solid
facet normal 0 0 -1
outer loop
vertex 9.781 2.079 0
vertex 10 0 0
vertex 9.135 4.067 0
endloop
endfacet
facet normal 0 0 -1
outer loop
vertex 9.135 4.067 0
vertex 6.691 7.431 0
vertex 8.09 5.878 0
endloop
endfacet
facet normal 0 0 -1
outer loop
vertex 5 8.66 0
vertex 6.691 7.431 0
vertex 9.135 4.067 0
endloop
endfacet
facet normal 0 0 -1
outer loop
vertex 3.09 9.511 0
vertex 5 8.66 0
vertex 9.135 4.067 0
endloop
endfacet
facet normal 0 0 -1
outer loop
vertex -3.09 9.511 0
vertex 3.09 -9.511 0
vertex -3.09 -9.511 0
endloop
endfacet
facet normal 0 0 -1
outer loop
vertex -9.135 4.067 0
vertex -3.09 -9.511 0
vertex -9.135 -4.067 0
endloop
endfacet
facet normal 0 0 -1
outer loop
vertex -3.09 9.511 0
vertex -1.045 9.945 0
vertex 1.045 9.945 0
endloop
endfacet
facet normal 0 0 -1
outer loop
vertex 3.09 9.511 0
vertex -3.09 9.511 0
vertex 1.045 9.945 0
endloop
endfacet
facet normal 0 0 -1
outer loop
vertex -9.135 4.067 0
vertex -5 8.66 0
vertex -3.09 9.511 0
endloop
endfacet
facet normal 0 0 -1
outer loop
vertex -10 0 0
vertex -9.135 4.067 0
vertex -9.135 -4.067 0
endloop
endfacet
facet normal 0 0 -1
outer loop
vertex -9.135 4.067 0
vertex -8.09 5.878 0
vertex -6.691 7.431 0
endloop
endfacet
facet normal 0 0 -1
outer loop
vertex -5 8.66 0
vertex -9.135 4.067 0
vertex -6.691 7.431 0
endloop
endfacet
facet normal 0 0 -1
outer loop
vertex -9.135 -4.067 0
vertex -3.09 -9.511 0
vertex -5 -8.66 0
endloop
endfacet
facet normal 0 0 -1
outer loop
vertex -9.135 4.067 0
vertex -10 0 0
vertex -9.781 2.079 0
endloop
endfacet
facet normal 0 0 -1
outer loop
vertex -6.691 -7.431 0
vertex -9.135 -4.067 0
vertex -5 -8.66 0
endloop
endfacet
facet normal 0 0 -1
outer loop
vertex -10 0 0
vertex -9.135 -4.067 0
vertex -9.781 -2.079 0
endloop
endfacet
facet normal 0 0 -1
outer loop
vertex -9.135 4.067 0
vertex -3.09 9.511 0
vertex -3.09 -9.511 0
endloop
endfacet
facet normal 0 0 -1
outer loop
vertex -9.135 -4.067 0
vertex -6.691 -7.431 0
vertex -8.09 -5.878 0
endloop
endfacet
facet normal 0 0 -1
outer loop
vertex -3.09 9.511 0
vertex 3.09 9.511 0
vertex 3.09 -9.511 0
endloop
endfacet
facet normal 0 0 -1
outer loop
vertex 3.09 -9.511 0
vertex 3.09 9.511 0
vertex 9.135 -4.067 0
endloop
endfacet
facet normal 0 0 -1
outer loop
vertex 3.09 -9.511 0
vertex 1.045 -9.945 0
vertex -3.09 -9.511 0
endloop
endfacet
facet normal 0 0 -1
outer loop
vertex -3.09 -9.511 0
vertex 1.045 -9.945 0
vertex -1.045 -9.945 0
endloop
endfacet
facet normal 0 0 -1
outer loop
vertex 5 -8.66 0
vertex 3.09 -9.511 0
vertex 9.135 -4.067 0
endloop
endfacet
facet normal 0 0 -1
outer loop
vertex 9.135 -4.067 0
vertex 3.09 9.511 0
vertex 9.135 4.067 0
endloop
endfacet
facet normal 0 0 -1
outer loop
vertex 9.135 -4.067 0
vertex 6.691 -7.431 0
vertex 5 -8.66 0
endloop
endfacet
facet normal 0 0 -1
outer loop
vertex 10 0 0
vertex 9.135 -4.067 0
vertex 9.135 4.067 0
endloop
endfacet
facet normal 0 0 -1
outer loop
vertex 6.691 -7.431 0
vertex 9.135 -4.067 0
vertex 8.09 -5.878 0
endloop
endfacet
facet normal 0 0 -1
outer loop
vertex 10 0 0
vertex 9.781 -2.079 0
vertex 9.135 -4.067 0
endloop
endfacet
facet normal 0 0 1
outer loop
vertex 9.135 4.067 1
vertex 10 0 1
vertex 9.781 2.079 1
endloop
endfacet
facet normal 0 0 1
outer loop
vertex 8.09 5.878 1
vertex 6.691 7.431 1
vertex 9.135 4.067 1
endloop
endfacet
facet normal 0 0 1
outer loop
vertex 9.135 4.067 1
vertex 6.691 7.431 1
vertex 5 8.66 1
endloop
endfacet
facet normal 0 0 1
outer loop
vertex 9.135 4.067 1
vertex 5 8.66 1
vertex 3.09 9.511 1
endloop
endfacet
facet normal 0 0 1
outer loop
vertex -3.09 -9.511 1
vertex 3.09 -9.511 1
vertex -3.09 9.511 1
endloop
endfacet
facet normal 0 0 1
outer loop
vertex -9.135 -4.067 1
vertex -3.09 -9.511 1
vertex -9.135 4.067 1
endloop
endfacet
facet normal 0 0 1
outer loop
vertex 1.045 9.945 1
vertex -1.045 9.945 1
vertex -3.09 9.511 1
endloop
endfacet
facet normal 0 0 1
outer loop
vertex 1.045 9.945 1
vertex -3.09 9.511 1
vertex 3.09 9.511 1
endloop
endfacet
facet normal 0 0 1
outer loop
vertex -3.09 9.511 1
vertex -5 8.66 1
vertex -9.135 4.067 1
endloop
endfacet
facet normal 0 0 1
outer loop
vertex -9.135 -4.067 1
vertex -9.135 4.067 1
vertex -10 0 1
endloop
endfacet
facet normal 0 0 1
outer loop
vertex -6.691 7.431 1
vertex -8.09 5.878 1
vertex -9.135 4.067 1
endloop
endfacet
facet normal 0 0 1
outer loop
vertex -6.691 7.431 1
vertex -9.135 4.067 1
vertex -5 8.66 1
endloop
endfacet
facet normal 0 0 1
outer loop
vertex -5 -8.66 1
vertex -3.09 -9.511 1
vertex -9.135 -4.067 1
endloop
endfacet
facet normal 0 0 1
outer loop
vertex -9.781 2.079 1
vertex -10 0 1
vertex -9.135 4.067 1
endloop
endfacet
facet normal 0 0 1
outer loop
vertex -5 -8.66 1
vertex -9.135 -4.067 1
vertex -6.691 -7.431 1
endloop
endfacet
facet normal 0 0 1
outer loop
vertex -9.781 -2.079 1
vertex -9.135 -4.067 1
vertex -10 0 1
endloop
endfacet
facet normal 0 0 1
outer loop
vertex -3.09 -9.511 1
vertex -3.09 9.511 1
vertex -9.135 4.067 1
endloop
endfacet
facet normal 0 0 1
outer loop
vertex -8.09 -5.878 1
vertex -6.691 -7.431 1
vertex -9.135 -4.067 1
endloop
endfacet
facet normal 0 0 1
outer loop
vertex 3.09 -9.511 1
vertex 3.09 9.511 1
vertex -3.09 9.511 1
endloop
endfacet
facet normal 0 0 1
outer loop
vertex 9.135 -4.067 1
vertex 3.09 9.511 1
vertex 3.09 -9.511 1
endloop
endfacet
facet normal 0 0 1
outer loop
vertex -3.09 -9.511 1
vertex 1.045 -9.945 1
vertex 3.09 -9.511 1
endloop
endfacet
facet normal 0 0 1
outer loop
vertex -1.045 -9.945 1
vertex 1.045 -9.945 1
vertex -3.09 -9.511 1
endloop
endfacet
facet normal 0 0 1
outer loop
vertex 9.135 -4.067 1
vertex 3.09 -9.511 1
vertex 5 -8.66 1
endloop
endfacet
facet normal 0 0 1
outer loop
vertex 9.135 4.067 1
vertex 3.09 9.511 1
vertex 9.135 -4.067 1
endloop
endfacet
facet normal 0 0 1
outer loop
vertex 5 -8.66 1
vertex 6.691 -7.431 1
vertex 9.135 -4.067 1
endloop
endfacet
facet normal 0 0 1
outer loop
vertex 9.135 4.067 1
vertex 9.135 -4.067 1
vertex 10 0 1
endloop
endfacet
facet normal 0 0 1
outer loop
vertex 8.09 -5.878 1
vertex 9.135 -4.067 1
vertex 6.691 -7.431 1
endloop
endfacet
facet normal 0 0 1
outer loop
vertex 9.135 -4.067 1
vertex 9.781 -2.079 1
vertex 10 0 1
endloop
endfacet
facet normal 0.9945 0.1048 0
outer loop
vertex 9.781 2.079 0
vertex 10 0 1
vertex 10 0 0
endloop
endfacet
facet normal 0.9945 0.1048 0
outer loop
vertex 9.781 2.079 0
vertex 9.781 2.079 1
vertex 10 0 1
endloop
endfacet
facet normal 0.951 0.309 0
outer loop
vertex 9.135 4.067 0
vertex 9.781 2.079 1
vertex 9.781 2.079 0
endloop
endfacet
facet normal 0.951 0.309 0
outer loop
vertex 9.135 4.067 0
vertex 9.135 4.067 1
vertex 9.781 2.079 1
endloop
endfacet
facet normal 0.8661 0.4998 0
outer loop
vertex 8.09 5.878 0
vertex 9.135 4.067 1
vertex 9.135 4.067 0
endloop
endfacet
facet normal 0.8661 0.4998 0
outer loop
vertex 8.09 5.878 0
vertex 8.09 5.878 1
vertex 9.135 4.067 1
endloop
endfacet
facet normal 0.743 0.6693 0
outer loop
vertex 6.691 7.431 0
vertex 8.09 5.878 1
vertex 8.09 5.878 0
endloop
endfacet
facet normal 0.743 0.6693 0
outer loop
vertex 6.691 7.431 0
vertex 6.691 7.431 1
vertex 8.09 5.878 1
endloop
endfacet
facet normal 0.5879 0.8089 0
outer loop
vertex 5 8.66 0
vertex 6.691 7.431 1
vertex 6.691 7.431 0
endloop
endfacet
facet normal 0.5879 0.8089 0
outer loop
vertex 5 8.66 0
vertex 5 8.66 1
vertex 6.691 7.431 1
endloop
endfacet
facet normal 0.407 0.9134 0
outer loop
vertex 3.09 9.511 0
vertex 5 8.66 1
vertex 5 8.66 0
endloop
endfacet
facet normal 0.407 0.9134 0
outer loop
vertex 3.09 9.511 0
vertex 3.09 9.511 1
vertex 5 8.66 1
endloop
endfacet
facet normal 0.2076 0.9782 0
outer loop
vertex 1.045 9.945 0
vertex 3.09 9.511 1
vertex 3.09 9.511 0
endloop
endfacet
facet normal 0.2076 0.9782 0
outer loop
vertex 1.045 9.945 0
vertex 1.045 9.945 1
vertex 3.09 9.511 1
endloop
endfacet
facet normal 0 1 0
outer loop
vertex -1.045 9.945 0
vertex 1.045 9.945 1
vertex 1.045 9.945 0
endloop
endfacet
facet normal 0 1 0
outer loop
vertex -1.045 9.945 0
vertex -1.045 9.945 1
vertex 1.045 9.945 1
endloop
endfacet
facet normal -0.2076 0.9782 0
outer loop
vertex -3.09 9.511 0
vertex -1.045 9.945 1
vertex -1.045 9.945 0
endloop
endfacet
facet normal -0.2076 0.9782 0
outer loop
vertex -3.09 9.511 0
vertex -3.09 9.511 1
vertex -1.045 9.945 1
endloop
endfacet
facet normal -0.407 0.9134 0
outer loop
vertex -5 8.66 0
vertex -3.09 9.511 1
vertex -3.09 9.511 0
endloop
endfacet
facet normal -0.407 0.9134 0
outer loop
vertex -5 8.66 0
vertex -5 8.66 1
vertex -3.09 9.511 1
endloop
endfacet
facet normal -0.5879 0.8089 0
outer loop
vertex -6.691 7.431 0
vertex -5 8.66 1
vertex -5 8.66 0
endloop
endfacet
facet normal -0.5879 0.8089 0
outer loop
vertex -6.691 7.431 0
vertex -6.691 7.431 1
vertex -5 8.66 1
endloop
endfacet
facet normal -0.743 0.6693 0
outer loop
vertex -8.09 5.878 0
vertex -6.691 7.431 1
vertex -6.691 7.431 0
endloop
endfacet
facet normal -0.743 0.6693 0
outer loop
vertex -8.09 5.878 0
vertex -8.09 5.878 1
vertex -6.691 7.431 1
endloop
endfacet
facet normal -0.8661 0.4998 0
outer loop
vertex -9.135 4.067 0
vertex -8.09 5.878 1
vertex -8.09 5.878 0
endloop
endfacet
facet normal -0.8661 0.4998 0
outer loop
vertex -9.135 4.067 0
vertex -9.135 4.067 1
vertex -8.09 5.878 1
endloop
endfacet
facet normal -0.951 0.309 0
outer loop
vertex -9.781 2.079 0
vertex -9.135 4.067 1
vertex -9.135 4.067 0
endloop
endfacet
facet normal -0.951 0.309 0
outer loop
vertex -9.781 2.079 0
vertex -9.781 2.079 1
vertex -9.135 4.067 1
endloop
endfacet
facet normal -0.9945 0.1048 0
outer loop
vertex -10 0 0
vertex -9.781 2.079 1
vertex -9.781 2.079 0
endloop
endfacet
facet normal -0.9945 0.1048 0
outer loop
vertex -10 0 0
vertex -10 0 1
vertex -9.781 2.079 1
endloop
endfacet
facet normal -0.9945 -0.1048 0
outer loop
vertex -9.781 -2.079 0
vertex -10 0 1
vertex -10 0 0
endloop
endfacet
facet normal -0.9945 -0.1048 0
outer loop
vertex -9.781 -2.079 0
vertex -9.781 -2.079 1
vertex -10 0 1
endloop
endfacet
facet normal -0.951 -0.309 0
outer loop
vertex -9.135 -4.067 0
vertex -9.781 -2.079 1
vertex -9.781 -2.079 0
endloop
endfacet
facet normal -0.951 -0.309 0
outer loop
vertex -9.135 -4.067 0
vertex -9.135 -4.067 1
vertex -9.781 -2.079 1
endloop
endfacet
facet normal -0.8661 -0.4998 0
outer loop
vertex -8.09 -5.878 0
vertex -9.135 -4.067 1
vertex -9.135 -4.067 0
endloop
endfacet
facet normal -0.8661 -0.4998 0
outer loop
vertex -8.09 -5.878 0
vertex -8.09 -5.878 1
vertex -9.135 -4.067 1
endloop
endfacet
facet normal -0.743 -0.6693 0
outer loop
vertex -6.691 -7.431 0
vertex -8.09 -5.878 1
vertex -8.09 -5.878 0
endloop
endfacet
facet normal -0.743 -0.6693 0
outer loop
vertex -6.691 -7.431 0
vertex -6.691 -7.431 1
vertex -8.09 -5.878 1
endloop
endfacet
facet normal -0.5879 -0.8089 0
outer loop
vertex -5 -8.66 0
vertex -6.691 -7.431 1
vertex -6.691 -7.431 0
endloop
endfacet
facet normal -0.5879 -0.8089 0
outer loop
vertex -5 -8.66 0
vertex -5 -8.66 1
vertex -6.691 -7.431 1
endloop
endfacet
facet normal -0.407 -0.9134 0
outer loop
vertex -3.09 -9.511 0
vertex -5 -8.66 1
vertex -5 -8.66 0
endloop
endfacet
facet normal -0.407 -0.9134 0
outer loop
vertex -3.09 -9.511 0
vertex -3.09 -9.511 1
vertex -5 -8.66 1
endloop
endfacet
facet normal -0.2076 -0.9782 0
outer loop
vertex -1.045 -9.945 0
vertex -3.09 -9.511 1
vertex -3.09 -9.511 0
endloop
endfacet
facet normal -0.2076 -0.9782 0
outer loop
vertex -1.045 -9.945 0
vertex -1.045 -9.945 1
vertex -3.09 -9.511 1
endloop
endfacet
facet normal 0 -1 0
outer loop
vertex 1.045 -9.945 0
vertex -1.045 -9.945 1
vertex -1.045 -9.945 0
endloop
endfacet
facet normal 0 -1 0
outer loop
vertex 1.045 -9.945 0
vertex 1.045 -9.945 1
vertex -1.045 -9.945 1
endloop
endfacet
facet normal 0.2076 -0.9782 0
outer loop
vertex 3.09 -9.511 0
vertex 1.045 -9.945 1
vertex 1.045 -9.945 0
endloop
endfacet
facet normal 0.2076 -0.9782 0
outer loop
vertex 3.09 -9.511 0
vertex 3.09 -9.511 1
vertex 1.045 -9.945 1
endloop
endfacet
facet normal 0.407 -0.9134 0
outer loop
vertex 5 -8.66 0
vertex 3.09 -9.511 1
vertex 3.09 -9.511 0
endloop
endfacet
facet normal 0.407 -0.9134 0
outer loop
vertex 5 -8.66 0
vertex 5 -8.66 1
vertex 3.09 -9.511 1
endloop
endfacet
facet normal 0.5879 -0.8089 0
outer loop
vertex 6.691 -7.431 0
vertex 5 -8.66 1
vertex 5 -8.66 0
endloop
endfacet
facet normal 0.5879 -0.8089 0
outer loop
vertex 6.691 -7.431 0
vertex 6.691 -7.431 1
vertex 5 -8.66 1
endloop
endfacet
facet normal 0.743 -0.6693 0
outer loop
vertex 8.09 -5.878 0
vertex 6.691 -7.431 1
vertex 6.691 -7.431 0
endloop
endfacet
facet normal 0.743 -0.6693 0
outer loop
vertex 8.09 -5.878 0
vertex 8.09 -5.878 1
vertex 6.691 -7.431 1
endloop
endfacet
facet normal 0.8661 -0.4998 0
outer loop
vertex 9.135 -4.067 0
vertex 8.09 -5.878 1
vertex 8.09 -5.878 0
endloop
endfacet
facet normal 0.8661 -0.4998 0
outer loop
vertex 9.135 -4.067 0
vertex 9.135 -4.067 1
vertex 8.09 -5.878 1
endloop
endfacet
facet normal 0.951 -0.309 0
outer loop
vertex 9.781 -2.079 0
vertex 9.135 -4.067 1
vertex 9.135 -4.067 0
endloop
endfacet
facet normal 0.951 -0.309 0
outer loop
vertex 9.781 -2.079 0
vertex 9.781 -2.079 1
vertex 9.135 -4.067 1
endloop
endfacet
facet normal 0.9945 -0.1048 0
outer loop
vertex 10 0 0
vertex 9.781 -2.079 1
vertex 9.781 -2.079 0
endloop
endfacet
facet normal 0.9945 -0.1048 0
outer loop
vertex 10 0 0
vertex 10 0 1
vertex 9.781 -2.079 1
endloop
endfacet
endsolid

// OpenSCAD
module sphere(r) {
  linear_extrude(height = 1)
  circle(r = r);
}

sphere(r = 10);
